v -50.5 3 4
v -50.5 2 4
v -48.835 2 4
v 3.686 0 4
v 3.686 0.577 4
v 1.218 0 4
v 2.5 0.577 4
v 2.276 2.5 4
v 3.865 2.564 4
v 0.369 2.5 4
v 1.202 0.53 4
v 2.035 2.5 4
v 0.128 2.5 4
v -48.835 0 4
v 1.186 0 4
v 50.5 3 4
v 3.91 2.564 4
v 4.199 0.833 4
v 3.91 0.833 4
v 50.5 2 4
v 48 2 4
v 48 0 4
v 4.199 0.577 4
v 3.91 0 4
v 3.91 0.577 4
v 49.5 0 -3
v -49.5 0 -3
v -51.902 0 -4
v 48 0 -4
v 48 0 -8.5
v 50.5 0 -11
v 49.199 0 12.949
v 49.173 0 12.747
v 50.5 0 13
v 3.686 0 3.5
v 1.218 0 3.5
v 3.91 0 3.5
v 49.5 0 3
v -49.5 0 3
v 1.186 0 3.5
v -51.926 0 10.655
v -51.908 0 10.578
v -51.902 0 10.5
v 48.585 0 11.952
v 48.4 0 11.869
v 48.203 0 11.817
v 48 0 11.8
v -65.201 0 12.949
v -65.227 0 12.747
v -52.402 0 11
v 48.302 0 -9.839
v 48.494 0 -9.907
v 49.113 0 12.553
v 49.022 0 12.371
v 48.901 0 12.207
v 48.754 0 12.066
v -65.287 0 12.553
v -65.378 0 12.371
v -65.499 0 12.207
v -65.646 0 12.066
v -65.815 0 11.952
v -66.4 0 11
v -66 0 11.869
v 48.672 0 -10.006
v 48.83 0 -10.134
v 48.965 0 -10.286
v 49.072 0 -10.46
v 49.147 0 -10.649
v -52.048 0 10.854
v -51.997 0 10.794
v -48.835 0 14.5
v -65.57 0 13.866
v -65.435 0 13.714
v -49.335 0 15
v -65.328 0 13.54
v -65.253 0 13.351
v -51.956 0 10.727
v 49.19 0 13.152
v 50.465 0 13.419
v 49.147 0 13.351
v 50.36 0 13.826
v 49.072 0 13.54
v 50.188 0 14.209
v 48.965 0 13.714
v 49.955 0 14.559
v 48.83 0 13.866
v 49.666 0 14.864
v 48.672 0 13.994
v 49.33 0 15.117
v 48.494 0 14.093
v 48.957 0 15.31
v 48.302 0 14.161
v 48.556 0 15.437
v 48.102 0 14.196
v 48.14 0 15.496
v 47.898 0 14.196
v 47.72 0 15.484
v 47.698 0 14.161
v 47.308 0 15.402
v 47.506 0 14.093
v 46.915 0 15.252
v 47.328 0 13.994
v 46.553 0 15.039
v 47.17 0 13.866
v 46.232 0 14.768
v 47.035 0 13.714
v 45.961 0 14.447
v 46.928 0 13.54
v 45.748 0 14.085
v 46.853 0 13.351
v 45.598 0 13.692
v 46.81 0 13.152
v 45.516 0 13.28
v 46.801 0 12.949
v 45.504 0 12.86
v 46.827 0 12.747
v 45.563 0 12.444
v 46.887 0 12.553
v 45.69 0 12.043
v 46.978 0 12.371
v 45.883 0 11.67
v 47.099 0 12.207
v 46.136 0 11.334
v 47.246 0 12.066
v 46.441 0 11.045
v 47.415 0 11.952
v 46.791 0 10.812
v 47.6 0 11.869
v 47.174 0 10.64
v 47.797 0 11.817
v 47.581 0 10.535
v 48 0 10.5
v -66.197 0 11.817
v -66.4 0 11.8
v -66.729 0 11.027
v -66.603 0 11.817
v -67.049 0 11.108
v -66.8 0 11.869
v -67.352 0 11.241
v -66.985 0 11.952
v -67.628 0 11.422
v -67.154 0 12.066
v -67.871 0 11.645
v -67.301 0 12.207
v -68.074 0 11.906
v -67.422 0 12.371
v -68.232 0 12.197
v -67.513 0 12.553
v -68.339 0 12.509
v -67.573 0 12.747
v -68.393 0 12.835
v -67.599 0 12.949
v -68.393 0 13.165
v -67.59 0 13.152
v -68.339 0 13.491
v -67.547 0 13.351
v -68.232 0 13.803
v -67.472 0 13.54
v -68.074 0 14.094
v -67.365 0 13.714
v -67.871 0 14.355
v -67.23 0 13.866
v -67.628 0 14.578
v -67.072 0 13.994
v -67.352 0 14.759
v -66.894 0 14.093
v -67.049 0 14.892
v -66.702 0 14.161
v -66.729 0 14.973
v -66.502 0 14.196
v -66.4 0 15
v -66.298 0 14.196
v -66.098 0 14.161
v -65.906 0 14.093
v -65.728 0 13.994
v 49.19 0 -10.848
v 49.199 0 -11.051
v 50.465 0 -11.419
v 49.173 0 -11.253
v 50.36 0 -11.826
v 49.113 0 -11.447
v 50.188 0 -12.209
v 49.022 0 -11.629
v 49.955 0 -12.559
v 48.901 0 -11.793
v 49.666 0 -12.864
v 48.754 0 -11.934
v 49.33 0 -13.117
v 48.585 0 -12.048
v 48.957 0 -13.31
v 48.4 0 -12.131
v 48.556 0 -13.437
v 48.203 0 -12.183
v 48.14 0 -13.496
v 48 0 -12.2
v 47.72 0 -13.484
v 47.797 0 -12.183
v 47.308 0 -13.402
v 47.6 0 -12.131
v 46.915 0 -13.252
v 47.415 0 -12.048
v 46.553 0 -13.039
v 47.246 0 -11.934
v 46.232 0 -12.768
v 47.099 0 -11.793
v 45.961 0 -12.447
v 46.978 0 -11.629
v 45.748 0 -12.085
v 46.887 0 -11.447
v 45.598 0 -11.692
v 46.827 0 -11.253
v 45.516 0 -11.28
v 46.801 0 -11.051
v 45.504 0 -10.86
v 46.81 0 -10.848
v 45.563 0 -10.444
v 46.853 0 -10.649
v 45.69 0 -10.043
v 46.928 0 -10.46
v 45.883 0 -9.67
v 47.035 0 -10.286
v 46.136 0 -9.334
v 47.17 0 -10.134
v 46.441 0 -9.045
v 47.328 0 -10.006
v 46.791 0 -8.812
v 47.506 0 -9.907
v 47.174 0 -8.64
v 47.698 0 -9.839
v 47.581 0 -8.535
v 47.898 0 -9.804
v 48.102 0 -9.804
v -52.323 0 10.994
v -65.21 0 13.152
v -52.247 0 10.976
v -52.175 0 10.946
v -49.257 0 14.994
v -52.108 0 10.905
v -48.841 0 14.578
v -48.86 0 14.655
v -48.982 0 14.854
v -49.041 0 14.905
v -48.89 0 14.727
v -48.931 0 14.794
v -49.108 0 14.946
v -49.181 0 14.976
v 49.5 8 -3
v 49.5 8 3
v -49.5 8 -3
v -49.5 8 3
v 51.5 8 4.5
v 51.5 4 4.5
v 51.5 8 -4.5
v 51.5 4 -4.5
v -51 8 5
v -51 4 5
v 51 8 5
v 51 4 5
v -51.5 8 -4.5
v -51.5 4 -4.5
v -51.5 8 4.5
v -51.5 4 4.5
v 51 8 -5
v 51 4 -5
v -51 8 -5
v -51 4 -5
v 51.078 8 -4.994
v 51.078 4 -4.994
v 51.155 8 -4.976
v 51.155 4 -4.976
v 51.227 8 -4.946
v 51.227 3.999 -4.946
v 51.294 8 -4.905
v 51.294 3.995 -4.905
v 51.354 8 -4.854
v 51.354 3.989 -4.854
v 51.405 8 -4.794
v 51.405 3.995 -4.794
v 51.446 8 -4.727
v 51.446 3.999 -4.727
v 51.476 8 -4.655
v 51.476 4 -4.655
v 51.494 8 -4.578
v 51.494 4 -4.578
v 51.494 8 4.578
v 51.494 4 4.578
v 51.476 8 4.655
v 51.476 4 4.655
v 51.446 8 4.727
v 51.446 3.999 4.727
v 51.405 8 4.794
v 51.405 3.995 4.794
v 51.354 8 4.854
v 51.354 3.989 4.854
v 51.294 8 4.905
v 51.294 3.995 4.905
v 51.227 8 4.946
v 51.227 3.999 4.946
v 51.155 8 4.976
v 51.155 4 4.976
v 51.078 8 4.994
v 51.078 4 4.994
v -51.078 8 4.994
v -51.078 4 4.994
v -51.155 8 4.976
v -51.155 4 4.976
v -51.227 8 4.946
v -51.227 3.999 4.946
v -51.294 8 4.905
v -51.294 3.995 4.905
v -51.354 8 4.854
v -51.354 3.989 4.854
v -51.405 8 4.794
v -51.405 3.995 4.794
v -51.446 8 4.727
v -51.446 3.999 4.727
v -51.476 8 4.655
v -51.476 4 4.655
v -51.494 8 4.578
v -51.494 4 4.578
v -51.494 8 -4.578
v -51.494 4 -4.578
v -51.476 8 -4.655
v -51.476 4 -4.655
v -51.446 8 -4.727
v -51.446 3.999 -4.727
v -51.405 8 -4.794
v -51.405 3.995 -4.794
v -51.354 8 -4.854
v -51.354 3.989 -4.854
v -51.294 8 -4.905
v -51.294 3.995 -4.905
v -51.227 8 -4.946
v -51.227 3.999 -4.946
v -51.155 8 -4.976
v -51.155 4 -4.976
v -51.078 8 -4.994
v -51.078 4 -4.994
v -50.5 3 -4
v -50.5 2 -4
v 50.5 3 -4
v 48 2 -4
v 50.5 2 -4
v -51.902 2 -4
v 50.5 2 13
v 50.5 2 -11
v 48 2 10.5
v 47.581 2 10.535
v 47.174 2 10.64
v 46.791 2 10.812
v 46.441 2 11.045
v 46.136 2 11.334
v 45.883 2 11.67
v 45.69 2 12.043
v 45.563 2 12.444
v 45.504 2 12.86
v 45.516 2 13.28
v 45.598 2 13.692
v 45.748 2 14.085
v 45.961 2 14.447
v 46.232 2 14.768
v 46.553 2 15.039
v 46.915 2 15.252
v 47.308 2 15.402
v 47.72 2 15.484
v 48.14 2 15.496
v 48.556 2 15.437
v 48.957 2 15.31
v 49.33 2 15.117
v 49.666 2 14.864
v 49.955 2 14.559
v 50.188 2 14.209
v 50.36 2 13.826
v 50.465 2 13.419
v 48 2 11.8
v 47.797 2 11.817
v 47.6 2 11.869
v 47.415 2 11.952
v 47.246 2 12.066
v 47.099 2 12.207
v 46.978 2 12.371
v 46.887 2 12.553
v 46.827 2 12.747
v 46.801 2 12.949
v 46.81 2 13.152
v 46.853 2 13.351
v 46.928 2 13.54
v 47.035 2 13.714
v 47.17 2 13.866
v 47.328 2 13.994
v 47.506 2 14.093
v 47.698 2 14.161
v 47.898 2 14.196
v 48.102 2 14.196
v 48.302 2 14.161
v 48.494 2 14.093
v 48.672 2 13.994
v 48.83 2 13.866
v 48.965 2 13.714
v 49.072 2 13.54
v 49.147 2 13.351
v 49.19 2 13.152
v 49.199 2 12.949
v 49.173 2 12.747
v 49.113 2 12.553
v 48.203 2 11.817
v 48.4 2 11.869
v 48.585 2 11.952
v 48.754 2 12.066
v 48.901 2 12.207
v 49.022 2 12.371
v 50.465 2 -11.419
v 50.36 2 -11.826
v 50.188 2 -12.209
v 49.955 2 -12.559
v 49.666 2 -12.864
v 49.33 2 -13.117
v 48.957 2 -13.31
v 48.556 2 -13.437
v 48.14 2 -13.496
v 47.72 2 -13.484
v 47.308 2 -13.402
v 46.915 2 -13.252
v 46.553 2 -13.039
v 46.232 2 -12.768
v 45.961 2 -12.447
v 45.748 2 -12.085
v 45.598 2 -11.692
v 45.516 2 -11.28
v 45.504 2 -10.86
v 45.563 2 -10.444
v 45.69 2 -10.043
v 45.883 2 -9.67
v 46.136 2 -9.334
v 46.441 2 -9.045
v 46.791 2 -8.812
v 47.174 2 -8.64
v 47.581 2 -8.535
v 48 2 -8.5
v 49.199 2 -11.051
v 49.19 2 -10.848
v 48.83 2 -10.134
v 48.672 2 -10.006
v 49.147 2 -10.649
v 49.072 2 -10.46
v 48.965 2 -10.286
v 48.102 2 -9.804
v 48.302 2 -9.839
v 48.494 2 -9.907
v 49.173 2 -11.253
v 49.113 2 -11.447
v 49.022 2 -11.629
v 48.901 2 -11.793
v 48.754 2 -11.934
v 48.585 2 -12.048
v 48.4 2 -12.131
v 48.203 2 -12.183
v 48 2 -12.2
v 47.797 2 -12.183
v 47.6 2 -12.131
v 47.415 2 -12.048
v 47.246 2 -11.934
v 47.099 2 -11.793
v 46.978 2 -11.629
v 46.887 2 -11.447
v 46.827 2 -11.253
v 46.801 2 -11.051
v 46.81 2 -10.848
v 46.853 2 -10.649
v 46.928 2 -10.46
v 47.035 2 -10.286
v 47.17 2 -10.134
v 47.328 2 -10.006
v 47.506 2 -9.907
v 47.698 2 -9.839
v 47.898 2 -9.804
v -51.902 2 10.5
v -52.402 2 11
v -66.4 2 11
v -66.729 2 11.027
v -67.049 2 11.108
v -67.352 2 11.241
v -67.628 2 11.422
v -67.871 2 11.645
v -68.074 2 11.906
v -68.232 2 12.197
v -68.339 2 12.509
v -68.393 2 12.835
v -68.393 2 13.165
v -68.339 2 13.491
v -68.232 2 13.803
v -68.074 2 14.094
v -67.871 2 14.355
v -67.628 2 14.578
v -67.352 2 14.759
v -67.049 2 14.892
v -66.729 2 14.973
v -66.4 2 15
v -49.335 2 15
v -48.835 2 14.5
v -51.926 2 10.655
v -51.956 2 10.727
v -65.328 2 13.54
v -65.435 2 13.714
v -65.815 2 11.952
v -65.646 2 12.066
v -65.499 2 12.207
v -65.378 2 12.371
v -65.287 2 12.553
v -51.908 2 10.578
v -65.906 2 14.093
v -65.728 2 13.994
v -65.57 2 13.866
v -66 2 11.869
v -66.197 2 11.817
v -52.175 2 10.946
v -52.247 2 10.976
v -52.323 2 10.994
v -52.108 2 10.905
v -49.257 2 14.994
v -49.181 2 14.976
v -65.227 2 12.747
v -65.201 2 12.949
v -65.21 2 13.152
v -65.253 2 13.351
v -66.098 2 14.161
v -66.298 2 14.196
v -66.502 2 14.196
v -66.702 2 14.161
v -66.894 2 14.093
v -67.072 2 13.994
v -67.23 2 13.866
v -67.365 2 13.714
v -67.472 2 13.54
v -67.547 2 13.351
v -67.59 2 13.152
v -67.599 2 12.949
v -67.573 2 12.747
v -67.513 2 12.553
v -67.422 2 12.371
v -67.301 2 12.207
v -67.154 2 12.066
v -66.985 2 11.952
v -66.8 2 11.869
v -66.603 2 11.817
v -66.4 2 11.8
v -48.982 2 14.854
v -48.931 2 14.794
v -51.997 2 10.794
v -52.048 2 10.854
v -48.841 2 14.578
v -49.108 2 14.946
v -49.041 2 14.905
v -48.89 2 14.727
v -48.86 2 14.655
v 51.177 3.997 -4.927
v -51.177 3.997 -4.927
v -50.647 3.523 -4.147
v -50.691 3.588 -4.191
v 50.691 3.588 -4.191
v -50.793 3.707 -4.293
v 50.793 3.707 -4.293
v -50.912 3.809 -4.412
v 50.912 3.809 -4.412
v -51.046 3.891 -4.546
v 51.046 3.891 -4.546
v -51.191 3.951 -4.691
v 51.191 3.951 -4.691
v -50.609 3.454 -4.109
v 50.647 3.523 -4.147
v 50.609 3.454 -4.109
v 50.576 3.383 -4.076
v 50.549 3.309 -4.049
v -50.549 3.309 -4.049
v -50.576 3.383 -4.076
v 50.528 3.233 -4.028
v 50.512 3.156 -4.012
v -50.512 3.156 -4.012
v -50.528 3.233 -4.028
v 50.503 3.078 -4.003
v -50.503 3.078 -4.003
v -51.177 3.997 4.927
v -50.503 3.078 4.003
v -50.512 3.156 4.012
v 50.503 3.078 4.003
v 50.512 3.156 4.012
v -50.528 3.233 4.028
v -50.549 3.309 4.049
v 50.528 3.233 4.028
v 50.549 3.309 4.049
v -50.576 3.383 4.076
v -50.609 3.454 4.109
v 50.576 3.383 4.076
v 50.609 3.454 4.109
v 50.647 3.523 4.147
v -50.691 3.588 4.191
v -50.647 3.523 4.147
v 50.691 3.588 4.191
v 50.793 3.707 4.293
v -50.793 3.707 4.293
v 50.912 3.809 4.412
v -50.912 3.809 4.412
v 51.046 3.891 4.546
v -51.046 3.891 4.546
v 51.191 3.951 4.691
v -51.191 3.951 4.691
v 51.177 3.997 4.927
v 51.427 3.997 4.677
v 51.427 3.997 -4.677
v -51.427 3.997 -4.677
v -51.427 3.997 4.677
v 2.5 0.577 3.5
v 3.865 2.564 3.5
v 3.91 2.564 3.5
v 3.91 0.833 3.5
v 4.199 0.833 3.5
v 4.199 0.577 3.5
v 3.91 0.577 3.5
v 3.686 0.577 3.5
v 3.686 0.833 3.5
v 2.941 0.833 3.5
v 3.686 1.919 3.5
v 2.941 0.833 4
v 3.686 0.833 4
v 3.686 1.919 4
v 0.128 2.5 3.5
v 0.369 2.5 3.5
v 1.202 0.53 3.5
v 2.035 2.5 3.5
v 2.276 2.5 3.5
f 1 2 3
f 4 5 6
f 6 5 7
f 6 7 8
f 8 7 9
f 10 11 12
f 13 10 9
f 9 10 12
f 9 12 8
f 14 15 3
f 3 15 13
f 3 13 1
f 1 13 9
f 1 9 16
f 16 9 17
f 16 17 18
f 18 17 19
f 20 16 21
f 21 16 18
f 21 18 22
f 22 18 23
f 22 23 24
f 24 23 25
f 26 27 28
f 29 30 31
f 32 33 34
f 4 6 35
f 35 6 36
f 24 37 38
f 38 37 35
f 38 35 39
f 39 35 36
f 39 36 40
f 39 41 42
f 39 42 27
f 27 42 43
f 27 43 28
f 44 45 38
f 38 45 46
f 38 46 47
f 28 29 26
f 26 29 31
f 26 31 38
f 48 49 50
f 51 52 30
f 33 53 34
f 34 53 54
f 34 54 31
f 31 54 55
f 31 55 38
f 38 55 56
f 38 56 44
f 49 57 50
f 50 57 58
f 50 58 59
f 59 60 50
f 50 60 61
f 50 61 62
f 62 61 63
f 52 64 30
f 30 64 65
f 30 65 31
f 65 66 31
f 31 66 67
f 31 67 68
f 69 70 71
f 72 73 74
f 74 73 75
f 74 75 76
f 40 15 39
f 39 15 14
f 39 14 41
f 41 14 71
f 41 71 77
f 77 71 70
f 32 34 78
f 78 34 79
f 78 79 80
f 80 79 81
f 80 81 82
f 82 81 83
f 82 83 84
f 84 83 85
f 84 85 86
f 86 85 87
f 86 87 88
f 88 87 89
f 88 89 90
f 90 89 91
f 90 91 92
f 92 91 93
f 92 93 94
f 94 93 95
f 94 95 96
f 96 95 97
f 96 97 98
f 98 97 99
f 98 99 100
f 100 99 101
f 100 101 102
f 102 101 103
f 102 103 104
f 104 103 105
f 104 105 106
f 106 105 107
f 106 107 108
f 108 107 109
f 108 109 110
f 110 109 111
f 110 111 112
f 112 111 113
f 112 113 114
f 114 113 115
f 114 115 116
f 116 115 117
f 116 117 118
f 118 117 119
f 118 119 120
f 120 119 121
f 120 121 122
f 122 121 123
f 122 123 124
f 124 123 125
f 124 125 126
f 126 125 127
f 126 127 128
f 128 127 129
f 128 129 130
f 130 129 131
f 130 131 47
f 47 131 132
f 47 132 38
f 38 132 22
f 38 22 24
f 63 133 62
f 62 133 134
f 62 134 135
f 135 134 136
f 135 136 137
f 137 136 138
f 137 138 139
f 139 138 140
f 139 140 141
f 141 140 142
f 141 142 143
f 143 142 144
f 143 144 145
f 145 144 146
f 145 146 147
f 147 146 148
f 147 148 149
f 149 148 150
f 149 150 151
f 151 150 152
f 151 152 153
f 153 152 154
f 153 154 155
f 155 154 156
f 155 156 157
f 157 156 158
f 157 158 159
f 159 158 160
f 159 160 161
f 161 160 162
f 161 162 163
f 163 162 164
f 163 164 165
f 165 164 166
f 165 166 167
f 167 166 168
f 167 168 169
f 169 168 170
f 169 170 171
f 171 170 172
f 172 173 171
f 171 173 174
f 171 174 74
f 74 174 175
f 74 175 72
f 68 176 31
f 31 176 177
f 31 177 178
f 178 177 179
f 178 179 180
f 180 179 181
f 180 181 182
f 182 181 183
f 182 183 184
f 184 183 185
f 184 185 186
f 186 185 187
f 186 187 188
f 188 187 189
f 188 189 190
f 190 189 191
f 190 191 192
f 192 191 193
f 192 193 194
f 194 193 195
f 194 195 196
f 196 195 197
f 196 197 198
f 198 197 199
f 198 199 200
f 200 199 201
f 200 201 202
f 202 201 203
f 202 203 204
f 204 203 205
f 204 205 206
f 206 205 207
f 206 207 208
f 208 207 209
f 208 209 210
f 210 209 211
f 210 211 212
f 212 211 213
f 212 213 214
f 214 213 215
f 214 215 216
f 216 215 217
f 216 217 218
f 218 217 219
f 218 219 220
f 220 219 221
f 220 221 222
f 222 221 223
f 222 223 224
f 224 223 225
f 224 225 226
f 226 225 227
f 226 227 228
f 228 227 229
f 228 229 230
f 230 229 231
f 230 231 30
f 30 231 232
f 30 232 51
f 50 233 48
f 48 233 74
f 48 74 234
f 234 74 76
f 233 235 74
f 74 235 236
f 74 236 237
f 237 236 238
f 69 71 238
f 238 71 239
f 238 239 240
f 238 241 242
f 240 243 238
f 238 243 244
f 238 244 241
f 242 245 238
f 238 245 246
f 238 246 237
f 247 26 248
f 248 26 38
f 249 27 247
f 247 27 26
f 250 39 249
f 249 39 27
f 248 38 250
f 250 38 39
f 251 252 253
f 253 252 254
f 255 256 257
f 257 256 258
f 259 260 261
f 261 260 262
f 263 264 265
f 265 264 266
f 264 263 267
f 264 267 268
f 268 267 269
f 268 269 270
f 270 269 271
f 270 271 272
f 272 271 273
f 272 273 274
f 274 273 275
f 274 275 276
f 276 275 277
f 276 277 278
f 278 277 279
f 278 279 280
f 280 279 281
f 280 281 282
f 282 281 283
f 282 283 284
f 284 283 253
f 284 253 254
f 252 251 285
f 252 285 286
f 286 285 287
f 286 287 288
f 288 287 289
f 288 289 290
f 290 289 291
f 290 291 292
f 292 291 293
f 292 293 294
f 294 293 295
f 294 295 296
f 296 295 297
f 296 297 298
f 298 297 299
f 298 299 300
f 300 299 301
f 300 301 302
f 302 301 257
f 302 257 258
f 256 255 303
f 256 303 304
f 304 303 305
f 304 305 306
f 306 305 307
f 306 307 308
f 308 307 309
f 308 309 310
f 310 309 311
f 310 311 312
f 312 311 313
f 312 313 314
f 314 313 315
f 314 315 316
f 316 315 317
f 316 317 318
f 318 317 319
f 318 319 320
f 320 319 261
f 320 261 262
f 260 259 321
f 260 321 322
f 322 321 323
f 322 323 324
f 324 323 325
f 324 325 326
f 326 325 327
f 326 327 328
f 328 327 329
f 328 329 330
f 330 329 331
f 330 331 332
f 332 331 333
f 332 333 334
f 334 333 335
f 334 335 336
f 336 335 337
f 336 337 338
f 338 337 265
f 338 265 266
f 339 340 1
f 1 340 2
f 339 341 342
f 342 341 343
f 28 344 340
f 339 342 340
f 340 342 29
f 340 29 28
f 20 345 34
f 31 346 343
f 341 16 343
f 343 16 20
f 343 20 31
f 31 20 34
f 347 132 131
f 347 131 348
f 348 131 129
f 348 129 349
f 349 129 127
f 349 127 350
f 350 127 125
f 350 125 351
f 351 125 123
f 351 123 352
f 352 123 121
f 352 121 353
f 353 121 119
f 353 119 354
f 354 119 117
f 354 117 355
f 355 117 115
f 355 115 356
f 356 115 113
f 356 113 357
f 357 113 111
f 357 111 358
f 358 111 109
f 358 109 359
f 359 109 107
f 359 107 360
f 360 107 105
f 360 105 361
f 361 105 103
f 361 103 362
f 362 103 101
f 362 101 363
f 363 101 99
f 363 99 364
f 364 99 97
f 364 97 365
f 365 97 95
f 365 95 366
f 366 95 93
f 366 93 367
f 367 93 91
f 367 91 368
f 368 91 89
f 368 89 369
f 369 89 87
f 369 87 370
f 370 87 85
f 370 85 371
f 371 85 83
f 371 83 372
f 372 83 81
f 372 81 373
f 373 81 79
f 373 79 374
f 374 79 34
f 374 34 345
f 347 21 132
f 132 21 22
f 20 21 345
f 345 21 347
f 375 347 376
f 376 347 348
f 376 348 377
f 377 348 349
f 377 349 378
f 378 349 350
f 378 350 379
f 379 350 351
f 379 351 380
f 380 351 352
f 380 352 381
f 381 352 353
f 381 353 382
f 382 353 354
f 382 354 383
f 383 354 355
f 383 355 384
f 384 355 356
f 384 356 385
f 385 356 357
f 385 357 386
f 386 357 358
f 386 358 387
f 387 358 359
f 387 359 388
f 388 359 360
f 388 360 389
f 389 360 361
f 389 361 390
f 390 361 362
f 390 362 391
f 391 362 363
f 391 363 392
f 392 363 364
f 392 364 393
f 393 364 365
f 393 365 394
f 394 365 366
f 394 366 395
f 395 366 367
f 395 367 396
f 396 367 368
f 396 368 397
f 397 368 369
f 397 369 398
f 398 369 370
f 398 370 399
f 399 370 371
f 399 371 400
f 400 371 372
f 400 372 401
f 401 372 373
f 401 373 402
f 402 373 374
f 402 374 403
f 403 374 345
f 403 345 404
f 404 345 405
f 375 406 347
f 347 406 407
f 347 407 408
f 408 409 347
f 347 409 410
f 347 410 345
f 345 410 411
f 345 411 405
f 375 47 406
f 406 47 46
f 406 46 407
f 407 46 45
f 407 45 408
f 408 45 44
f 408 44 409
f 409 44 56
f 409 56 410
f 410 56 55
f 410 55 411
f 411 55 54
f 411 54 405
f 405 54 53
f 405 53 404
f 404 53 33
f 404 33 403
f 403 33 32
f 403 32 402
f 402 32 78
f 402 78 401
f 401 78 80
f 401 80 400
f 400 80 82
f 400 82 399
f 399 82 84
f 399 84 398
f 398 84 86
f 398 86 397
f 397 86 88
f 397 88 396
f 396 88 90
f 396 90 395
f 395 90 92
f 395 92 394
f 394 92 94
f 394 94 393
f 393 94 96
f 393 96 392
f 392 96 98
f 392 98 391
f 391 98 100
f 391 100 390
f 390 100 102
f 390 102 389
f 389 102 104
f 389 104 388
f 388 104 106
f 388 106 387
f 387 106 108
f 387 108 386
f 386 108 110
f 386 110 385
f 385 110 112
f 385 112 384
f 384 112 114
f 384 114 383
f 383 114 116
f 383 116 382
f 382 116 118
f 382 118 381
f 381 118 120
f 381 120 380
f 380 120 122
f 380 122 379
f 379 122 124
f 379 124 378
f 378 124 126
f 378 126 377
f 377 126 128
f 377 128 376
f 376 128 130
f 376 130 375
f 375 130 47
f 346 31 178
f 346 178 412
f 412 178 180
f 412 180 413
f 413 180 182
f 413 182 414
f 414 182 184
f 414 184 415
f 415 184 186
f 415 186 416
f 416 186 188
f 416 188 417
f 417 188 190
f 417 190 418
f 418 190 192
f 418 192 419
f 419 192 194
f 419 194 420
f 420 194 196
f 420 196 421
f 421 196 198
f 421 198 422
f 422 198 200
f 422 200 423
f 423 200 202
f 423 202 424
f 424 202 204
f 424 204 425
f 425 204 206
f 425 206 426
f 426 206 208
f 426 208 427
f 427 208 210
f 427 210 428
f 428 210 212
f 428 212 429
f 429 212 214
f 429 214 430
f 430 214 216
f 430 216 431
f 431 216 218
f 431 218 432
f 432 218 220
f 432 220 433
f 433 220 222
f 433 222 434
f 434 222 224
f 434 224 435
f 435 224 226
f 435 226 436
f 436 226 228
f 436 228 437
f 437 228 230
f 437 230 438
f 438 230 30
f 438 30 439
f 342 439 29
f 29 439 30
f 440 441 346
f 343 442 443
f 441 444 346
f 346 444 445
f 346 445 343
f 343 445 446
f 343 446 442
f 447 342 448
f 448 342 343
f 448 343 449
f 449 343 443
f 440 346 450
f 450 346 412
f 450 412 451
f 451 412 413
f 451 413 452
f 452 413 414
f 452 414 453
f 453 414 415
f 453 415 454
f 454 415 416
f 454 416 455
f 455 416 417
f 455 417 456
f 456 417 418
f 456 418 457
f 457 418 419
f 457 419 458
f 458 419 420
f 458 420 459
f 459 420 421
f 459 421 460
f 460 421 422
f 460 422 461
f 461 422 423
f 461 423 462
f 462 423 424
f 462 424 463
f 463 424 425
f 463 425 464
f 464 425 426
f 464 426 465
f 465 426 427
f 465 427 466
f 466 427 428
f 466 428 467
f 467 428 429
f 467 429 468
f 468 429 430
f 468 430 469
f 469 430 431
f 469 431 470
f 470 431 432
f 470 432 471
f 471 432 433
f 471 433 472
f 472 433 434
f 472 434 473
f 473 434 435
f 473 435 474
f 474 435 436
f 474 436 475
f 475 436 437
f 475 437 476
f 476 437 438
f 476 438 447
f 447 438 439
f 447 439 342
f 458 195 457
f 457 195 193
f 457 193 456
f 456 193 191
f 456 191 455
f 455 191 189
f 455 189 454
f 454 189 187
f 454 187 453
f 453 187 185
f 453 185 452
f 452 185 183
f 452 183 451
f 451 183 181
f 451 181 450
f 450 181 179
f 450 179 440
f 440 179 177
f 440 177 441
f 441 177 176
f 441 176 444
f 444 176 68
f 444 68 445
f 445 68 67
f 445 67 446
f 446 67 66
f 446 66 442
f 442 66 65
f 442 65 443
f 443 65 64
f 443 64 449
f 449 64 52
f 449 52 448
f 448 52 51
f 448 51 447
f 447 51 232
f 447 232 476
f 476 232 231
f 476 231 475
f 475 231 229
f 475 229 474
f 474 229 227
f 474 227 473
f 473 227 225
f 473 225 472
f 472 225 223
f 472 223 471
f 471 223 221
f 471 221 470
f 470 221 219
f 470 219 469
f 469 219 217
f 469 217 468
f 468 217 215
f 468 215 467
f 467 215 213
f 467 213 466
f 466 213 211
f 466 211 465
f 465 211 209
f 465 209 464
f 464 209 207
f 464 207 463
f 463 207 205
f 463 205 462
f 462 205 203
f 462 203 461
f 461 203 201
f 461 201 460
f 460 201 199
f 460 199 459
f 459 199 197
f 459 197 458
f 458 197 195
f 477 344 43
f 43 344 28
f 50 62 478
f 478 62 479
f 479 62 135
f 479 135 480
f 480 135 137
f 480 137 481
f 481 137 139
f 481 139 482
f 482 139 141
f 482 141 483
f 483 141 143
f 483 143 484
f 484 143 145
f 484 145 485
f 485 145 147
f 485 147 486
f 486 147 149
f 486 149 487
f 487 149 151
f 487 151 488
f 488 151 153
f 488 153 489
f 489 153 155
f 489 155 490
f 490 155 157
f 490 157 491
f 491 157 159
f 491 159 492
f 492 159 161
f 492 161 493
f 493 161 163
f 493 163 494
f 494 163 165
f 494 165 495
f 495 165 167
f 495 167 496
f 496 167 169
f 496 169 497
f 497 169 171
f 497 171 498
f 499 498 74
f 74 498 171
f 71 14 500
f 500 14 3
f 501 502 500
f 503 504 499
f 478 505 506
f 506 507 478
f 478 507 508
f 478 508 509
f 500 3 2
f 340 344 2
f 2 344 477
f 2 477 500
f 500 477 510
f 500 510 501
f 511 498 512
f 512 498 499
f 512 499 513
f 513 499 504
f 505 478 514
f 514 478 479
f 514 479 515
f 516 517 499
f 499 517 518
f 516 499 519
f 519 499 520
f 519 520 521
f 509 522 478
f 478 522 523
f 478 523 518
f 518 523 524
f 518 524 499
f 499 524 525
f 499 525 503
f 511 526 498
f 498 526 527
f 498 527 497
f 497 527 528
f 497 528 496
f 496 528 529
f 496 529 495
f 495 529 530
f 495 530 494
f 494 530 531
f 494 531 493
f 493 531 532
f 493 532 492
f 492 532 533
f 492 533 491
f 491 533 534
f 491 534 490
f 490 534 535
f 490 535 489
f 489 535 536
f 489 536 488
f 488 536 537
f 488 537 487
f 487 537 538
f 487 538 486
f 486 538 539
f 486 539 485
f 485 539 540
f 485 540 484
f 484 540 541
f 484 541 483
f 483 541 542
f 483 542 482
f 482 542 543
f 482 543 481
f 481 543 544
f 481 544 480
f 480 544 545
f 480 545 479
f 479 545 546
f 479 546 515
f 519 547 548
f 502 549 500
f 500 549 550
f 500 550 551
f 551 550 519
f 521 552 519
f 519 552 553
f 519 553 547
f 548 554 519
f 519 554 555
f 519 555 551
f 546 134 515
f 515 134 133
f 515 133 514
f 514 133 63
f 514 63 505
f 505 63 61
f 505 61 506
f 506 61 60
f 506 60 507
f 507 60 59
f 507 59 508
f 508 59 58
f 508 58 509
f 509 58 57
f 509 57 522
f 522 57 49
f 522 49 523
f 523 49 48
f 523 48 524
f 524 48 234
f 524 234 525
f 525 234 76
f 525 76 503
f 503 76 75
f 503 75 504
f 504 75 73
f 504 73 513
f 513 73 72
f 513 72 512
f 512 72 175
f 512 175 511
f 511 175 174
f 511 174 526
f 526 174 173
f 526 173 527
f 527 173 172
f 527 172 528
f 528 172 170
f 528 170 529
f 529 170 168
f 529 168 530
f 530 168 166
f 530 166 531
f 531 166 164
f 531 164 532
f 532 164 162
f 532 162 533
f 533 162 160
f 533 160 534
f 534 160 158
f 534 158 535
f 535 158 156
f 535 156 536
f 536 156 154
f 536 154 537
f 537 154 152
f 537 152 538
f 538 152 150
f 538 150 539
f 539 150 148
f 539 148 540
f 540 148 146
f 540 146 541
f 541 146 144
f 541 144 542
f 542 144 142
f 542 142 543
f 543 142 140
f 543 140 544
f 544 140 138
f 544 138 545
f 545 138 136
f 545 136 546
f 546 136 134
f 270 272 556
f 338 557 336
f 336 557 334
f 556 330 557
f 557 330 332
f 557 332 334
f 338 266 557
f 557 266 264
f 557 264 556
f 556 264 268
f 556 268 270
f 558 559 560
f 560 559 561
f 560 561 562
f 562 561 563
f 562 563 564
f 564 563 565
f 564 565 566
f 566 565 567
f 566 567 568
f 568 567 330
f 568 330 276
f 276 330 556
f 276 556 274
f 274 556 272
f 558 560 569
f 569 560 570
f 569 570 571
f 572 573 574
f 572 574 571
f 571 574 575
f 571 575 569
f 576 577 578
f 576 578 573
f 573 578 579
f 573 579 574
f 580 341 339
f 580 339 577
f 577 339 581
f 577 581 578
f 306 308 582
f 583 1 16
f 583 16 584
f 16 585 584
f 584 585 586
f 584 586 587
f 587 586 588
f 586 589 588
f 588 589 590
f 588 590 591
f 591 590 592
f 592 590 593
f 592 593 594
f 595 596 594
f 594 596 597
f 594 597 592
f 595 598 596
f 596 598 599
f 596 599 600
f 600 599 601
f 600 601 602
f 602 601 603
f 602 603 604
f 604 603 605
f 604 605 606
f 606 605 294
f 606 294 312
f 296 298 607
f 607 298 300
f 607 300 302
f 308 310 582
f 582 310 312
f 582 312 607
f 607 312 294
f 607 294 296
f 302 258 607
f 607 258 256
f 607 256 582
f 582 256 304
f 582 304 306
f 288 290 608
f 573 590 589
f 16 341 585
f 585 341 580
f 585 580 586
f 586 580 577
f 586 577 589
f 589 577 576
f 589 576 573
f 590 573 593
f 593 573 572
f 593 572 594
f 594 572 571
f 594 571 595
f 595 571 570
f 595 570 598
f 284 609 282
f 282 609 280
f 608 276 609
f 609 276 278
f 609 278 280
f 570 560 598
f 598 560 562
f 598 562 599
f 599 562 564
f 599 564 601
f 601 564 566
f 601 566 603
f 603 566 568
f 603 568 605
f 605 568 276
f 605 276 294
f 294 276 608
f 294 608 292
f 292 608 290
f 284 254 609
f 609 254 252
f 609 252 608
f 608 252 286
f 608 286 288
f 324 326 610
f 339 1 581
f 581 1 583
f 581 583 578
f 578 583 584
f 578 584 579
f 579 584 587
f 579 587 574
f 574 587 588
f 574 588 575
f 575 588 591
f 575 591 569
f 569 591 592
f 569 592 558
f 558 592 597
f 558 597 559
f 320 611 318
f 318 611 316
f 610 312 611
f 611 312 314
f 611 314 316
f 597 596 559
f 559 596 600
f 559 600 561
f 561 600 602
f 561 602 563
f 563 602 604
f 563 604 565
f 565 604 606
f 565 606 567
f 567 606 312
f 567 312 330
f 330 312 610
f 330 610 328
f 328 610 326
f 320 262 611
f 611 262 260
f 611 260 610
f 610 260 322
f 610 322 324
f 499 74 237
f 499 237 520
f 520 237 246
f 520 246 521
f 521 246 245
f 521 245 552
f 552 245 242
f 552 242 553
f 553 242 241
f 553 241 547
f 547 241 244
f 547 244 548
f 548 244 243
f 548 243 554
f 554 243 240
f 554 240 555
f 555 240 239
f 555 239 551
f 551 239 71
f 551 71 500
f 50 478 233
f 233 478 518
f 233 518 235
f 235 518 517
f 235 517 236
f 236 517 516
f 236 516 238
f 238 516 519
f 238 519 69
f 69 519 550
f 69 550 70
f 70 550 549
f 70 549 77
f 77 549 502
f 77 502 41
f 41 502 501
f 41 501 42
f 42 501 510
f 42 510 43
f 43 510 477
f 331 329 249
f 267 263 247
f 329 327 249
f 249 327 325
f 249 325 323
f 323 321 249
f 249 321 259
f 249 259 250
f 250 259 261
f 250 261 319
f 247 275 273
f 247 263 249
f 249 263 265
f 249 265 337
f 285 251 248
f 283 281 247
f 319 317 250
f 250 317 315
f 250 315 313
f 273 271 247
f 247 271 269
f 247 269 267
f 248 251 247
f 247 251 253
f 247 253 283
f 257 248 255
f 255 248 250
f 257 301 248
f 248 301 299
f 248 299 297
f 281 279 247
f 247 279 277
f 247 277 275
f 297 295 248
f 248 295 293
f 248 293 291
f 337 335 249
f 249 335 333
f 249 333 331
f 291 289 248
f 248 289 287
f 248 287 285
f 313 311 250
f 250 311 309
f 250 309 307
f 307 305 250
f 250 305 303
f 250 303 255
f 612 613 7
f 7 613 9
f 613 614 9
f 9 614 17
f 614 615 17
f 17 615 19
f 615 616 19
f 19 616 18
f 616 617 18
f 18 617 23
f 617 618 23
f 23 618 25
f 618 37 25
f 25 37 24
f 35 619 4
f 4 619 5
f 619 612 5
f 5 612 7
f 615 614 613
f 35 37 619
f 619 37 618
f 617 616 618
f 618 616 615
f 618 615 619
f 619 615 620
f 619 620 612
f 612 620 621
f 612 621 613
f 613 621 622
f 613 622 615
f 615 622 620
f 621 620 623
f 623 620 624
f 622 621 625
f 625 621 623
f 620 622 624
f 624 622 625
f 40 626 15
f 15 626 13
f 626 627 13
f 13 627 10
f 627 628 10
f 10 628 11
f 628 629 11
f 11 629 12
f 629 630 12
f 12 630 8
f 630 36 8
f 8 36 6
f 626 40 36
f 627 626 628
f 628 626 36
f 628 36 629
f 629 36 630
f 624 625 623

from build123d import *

# Parameters (mm, degrees)
SKETCH1_W           = 101
SKETCH1_H           = 8
SKETCH1_W_2         = 99
SKETCH1_H_2         = 6
BOSS_EXTRUDE1_DEPTH = 10
SKETCH2_R           = 1.2
BOSS_EXTRUDE2_DEPTH = 2
SKETCH3_W           = 103
SKETCH3_H           = 10
SKETCH3_W_2         = 101
SKETCH3_H_2         = 8
BOSS_EXTRUDE3_DEPTH = 6
FILLET4_R           = 1
FILLET5_R           = 1
FILLET6_R           = 1
FILLET7_R           = 1
FILLET8_R           = 0.5
FILLET9_R           = 0.5
CUT_EXTRUDE1_DEPTH  = 2
CUT_EXTRUDE2_DEPTH  = 0.5


# Some blends are built 0.0001 mm under size
with BuildPart() as part:
    # Sketch1 → Boss-Extrude1 (new body)
    with BuildSketch(Plane(origin=(0, 0, 0), x_dir=(1, 0, 0), z_dir=(0, 1, 0))):
        Rectangle(SKETCH1_W, SKETCH1_H)
        Rectangle(SKETCH1_W_2, SKETCH1_H_2, mode=Mode.SUBTRACT)
    extrude(amount=BOSS_EXTRUDE1_DEPTH)

    # Sketch2 → Boss-Extrude2 (add)
    # profile 1 of 3: a face of its own
    with BuildSketch(Plane.XZ):
        with BuildLine():
            Line((48, 4), (50.5, 4))
            Line((50.5, 4), (50.5, 13))
            ThreePointArc((50.5, 13), (46.232233047, 14.767766953), (48, 10.5))
            Line((48, 10.5), (48, 4))
        make_face()
        with Locations(Location((48, 13, 0), (0, 0, 270))):
            Circle(SKETCH2_R, mode=Mode.SUBTRACT)
    # profile 2 of 3: a face of its own
    with BuildSketch(Plane.XZ):
        with BuildLine():
            Line((48, -4), (50.5, -4))
            Line((50.5, -4), (50.5, -11))
            ThreePointArc((50.5, -11), (46.232233047, -12.767766953), (48, -8.5))
            Line((48, -8.5), (48, -4))
        make_face()
        with Locations(Location((48, -11, 0), (0, 0, 270))):
            Circle(SKETCH2_R, mode=Mode.SUBTRACT)
    # profile 3 of 3: a face of its own
    with BuildSketch(Plane.XZ):
        with BuildLine():
            Line((-66.4, 15), (-48.835058433, 15))
            Line((-48.835058433, 15), (-48.835058433, 4))
            Line((-48.835058433, 4), (-50.5, 4))
            Line((-50.5, 4), (-50.5, -4))
            Line((-50.5, -4), (-51.901659191, -4))
            Line((-51.901659191, -4), (-51.901659191, 11))
            Line((-51.901659191, 11), (-66.4, 11))
            ThreePointArc((-66.4, 11), (-68.4, 13), (-66.4, 15))
        make_face()
        with Locations(Location((-66.4, 13, 0), (0, 0, 270))):
            Circle(SKETCH2_R, mode=Mode.SUBTRACT)
    extrude(amount=-BOSS_EXTRUDE2_DEPTH)

    # Sketch3 → Boss-Extrude3 (add)
    with BuildSketch(Plane(origin=(0, 10, 0), x_dir=(1, 0, 0), z_dir=(0, 1, 0))):
        Rectangle(SKETCH3_W, SKETCH3_H)
        Rectangle(SKETCH3_W_2, SKETCH3_H_2, mode=Mode.SUBTRACT)
    extrude(amount=-BOSS_EXTRUDE3_DEPTH)

    # Fillet4
    fillet4_edges = [part.edges().sort_by_distance(p)[0] for p in [
        (0, 4, -4),
    ]]
    fillet(fillet4_edges, radius=FILLET4_R - 0.0001)  # a hair under: the kernel refuses the full size

    # Fillet5
    fillet5_edges = [part.edges().sort_by_distance(p)[0] for p in [
        (0, 4, 4),
    ]]
    fillet(fillet5_edges, radius=FILLET5_R - 0.0001)  # a hair under: the kernel refuses the full size

    # Fillet6
    fillet6_edges = [part.edges().sort_by_distance(p)[0] for p in [
        (50.5, 4, 0),
    ]]
    fillet(fillet6_edges, radius=FILLET6_R - 0.0001)  # a hair under: the kernel refuses the full size

    # Fillet7
    fillet7_edges = [part.edges().sort_by_distance(p)[0] for p in [
        (-50.5, 4, 0),
    ]]
    fillet(fillet7_edges, radius=FILLET7_R - 0.0001)  # a hair under: the kernel refuses the full size

    # Fillet8
    fillet8_edges = [part.edges().sort_by_distance(p)[0] for p in [
        (-51.901659191, 1, 11),
        (-48.835058433, 1, 15),
    ]]
    fillet(fillet8_edges, radius=FILLET8_R)

    # Fillet9
    # the kernel refuses this fillet: 0.5 mm, written as the material it takes off along each edge
    with BuildSketch(Plane(origin=(51.5, 11.25, -5), x_dir=(-1, 0, 0), z_dir=(0, -1, 0))) as fillet9_piece_1:
        with BuildLine():
            CenterArc((FILLET9_R, -FILLET9_R), FILLET9_R, 90, 90)
            Line((0, -FILLET9_R), (0, 0))
            Line((0, 0), (FILLET9_R, 0))
        make_face()
    extrude(amount=8.5, mode=Mode.SUBTRACT)
    with BuildSketch(Plane(origin=(51.5, 11.25, 5), x_dir=(-1, 0, 0), z_dir=(0, -1, 0)), Plane(origin=(-51.5, 11.25, 5), x_dir=(0, 0, -1), z_dir=(0, -1, 0)), Plane(origin=(-51.5, 11.25, -5), x_dir=(1, 0, 0), z_dir=(0, -1, 0))) as fillet9_piece_2:
        with BuildLine():
            CenterArc((FILLET9_R, FILLET9_R), FILLET9_R, 180, 90)
            Line((0, FILLET9_R), (0, 0))
            Line((0, 0), (FILLET9_R, 0))
        make_face()
    extrude(amount=8.5, mode=Mode.SUBTRACT)

    # Sketch4 → Cut-Extrude1 (cut)
    with BuildSketch(Plane(origin=(0, 10, 0), x_dir=(1, 0, 0), z_dir=(0, 1, 0))):
        with BuildLine():
            Line((51.5, -4.5), (51.5, 4.5))
            ThreePointArc((51.5, 4.5), (51.353553391, 4.853553391), (51, 5))
            Line((51, 5), (-51, 5))
            ThreePointArc((-51, 5), (-51.353553391, 4.853553391), (-51.5, 4.5))
            Line((-51.5, 4.5), (-51.5, -4.5))
            ThreePointArc((-51.5, -4.5), (-51.353553391, -4.853553391), (-51, -5))
            Line((-51, -5), (51, -5))
            ThreePointArc((51, -5), (51.353553391, -4.853553391), (51.5, -4.5))
        make_face()
    extrude(amount=-CUT_EXTRUDE1_DEPTH, mode=Mode.SUBTRACT)

    # Sketch5 → Cut-Extrude2 (cut)
    # profile 1 of 2: a face of its own
    with BuildSketch(Plane.XY.offset(4)):
        Polygon((0.128205128, 2.5), (0.368589744, 2.5), (1.201923077, 0.529847756), (2.03525641, 2.5), (2.275641026, 2.5), (1.217948718, 0), (1.185897436, 0), align=None)
    # profile 2 of 2: a face of its own
    with BuildSketch(Plane.XY.offset(4)):
        Polygon((3.864683494, 2.564102564), (3.91025641, 2.564102564), (3.91025641, 0.833333333), (4.198717949, 0.833333333), (4.198717949, 0.576923077), (3.91025641, 0.576923077), (3.91025641, 0), (3.685897436, 0), (3.685897436, 0.576923077), (2.5, 0.576923077), align=None)
        Polygon((3.685897436, 0.833333333), (3.685897436, 1.919070513), (2.940705128, 0.833333333), align=None, mode=Mode.SUBTRACT)
    extrude(amount=-CUT_EXTRUDE2_DEPTH, mode=Mode.SUBTRACT)


solid = part.part
